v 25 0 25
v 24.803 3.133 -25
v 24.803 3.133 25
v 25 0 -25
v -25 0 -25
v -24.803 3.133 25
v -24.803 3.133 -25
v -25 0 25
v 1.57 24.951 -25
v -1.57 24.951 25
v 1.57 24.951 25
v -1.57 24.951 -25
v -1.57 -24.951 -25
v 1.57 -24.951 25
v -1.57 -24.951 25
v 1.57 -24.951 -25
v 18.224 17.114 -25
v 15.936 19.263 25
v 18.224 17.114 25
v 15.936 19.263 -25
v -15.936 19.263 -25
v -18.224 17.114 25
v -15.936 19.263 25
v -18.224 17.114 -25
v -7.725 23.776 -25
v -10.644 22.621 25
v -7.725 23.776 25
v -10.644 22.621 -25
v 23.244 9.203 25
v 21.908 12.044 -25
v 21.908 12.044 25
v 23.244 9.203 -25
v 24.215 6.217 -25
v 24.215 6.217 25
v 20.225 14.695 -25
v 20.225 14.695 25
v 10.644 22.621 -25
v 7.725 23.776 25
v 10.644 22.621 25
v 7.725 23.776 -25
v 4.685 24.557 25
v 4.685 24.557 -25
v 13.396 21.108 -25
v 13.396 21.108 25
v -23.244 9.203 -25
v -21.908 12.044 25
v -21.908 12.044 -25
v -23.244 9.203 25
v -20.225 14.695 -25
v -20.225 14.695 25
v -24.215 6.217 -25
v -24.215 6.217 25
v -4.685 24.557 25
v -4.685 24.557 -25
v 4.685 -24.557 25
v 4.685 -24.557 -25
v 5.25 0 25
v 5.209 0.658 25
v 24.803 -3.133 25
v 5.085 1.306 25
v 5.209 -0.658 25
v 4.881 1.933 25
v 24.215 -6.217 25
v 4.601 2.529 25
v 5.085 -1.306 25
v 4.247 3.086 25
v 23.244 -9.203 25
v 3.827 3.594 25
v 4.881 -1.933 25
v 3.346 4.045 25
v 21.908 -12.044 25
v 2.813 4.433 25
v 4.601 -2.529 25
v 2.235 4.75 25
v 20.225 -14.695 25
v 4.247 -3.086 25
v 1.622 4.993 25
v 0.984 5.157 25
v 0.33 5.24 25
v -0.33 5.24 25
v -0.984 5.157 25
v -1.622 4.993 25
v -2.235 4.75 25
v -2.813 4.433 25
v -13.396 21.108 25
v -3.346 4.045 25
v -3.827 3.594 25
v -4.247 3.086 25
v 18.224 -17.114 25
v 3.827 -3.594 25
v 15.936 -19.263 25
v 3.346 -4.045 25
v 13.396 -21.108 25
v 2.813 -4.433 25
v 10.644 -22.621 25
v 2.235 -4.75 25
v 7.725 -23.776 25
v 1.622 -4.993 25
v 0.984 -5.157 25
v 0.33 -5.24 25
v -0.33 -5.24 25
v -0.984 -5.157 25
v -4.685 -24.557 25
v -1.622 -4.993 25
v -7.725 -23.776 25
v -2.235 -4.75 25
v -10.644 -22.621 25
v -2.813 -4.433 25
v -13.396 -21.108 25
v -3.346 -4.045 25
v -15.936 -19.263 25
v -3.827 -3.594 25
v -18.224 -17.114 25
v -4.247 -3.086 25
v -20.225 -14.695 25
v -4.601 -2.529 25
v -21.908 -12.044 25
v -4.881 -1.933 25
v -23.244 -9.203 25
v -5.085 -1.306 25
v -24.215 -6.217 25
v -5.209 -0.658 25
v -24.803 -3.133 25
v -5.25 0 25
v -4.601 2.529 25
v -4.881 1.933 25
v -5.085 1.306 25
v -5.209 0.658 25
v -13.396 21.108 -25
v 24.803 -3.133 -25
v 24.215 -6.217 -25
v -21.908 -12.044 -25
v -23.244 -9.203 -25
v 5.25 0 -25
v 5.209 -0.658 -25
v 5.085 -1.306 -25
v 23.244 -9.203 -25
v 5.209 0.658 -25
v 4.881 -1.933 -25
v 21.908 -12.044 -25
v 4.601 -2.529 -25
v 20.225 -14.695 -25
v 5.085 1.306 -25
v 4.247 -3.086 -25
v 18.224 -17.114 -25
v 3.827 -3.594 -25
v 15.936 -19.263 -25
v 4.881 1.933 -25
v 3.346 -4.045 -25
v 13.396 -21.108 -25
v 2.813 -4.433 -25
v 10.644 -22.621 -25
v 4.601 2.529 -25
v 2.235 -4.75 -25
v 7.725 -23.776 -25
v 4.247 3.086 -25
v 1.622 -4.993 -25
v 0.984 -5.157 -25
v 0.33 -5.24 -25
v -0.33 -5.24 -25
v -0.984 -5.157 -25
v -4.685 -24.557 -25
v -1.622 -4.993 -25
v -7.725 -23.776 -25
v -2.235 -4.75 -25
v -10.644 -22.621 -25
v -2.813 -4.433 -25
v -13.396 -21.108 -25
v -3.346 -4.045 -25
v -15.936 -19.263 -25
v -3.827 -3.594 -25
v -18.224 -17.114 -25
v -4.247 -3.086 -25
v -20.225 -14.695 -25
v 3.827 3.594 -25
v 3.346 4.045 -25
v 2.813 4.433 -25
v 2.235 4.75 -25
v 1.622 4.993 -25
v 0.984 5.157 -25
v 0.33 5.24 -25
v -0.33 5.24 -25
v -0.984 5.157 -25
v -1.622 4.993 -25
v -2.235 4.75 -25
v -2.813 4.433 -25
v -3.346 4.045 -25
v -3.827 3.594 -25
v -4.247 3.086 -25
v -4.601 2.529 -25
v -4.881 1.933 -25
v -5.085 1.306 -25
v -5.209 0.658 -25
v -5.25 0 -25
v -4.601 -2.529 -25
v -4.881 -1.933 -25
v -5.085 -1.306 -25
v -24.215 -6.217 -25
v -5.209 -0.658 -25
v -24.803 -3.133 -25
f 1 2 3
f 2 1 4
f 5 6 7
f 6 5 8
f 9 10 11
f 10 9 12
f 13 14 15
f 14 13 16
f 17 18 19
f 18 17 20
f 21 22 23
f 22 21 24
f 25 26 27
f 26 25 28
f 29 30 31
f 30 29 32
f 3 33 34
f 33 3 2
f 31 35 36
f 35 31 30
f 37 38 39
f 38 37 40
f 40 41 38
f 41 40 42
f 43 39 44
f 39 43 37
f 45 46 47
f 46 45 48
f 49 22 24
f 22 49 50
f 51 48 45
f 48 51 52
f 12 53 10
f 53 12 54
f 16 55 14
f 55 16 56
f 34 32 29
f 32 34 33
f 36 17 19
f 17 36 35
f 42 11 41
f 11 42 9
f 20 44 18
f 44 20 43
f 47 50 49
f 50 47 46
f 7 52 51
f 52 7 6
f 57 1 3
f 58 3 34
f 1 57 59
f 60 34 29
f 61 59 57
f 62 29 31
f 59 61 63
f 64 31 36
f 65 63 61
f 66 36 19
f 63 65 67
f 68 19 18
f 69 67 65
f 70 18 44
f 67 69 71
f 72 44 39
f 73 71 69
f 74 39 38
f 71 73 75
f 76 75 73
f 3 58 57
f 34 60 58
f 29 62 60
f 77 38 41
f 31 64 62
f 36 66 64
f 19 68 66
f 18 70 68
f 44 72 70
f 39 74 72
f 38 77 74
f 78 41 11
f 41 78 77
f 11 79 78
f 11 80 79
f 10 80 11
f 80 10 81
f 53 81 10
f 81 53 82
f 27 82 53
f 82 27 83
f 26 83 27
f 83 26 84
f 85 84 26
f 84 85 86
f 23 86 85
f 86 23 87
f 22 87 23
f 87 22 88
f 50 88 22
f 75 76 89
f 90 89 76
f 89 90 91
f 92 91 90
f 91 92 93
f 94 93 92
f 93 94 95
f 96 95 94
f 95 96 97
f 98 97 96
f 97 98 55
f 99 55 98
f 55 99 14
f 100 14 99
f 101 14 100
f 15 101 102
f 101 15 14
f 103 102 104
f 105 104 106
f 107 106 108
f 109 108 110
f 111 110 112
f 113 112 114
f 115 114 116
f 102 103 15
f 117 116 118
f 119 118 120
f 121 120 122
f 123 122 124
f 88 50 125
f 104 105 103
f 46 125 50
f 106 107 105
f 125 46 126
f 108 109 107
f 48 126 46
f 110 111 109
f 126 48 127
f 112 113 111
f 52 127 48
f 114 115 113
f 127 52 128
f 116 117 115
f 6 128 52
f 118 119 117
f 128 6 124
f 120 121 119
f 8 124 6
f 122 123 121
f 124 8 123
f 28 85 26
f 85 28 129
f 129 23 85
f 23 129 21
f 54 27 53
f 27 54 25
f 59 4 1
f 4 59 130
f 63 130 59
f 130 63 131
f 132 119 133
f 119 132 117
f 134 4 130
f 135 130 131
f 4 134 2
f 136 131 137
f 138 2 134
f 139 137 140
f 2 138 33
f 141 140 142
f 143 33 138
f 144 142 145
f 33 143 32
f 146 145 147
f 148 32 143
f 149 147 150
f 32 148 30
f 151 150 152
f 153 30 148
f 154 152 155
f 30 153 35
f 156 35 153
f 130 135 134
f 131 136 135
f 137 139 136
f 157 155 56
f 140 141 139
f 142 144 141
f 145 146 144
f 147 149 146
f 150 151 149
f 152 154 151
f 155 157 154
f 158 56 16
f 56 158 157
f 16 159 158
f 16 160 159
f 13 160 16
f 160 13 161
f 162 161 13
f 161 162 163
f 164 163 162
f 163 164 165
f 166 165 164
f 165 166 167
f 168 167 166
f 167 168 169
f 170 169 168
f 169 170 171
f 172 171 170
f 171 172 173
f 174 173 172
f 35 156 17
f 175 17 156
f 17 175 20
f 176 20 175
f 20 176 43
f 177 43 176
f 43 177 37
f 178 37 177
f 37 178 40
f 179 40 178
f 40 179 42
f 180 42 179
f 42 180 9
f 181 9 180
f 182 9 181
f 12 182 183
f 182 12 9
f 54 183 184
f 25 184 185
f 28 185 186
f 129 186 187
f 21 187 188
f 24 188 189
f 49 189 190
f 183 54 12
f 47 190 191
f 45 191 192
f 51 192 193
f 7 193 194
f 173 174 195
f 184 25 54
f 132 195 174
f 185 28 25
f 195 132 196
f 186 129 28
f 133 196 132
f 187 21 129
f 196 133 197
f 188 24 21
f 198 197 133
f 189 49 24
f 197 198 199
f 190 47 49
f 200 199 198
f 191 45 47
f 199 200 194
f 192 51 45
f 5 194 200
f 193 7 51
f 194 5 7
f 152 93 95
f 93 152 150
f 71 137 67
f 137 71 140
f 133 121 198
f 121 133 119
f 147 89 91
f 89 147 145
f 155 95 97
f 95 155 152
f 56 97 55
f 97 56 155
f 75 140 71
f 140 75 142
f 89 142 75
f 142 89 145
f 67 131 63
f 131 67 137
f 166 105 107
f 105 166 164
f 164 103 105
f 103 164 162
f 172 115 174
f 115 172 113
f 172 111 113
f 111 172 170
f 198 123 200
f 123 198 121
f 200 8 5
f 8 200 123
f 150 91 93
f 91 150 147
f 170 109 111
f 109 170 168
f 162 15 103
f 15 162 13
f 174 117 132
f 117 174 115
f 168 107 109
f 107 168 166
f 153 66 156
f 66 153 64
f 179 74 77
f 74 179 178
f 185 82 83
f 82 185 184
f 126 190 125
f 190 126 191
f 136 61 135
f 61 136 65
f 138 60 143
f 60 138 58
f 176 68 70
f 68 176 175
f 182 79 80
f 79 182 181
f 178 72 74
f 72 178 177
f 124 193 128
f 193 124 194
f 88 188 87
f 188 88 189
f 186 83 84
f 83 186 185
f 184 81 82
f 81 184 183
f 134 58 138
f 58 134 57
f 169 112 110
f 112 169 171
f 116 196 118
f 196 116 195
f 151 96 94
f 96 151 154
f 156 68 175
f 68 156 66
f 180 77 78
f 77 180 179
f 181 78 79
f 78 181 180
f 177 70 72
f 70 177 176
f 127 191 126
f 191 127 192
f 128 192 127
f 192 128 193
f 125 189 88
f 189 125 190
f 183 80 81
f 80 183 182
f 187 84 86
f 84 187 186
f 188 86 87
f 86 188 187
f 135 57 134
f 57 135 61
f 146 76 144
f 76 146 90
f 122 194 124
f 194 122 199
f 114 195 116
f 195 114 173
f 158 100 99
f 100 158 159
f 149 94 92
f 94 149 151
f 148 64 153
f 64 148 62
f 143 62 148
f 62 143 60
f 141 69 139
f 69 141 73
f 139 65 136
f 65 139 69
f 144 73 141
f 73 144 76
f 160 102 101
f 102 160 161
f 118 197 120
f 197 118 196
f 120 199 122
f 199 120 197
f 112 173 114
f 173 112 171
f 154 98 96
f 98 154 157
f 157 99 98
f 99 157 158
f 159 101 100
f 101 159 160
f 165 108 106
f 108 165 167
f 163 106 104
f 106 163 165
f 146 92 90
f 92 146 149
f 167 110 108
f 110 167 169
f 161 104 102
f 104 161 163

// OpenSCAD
$fn = 50;


difference() {
	union() {
		translate(v = [0, 0, -25.0000000000]) {
			cylinder(h = 50, r = 25.0000000000);
		}
	}
	union() {
		translate(v = [0, 0, -100.0000000000]) {
			cylinder(h = 200, r = 5.2500000000);
		}
	}
}
